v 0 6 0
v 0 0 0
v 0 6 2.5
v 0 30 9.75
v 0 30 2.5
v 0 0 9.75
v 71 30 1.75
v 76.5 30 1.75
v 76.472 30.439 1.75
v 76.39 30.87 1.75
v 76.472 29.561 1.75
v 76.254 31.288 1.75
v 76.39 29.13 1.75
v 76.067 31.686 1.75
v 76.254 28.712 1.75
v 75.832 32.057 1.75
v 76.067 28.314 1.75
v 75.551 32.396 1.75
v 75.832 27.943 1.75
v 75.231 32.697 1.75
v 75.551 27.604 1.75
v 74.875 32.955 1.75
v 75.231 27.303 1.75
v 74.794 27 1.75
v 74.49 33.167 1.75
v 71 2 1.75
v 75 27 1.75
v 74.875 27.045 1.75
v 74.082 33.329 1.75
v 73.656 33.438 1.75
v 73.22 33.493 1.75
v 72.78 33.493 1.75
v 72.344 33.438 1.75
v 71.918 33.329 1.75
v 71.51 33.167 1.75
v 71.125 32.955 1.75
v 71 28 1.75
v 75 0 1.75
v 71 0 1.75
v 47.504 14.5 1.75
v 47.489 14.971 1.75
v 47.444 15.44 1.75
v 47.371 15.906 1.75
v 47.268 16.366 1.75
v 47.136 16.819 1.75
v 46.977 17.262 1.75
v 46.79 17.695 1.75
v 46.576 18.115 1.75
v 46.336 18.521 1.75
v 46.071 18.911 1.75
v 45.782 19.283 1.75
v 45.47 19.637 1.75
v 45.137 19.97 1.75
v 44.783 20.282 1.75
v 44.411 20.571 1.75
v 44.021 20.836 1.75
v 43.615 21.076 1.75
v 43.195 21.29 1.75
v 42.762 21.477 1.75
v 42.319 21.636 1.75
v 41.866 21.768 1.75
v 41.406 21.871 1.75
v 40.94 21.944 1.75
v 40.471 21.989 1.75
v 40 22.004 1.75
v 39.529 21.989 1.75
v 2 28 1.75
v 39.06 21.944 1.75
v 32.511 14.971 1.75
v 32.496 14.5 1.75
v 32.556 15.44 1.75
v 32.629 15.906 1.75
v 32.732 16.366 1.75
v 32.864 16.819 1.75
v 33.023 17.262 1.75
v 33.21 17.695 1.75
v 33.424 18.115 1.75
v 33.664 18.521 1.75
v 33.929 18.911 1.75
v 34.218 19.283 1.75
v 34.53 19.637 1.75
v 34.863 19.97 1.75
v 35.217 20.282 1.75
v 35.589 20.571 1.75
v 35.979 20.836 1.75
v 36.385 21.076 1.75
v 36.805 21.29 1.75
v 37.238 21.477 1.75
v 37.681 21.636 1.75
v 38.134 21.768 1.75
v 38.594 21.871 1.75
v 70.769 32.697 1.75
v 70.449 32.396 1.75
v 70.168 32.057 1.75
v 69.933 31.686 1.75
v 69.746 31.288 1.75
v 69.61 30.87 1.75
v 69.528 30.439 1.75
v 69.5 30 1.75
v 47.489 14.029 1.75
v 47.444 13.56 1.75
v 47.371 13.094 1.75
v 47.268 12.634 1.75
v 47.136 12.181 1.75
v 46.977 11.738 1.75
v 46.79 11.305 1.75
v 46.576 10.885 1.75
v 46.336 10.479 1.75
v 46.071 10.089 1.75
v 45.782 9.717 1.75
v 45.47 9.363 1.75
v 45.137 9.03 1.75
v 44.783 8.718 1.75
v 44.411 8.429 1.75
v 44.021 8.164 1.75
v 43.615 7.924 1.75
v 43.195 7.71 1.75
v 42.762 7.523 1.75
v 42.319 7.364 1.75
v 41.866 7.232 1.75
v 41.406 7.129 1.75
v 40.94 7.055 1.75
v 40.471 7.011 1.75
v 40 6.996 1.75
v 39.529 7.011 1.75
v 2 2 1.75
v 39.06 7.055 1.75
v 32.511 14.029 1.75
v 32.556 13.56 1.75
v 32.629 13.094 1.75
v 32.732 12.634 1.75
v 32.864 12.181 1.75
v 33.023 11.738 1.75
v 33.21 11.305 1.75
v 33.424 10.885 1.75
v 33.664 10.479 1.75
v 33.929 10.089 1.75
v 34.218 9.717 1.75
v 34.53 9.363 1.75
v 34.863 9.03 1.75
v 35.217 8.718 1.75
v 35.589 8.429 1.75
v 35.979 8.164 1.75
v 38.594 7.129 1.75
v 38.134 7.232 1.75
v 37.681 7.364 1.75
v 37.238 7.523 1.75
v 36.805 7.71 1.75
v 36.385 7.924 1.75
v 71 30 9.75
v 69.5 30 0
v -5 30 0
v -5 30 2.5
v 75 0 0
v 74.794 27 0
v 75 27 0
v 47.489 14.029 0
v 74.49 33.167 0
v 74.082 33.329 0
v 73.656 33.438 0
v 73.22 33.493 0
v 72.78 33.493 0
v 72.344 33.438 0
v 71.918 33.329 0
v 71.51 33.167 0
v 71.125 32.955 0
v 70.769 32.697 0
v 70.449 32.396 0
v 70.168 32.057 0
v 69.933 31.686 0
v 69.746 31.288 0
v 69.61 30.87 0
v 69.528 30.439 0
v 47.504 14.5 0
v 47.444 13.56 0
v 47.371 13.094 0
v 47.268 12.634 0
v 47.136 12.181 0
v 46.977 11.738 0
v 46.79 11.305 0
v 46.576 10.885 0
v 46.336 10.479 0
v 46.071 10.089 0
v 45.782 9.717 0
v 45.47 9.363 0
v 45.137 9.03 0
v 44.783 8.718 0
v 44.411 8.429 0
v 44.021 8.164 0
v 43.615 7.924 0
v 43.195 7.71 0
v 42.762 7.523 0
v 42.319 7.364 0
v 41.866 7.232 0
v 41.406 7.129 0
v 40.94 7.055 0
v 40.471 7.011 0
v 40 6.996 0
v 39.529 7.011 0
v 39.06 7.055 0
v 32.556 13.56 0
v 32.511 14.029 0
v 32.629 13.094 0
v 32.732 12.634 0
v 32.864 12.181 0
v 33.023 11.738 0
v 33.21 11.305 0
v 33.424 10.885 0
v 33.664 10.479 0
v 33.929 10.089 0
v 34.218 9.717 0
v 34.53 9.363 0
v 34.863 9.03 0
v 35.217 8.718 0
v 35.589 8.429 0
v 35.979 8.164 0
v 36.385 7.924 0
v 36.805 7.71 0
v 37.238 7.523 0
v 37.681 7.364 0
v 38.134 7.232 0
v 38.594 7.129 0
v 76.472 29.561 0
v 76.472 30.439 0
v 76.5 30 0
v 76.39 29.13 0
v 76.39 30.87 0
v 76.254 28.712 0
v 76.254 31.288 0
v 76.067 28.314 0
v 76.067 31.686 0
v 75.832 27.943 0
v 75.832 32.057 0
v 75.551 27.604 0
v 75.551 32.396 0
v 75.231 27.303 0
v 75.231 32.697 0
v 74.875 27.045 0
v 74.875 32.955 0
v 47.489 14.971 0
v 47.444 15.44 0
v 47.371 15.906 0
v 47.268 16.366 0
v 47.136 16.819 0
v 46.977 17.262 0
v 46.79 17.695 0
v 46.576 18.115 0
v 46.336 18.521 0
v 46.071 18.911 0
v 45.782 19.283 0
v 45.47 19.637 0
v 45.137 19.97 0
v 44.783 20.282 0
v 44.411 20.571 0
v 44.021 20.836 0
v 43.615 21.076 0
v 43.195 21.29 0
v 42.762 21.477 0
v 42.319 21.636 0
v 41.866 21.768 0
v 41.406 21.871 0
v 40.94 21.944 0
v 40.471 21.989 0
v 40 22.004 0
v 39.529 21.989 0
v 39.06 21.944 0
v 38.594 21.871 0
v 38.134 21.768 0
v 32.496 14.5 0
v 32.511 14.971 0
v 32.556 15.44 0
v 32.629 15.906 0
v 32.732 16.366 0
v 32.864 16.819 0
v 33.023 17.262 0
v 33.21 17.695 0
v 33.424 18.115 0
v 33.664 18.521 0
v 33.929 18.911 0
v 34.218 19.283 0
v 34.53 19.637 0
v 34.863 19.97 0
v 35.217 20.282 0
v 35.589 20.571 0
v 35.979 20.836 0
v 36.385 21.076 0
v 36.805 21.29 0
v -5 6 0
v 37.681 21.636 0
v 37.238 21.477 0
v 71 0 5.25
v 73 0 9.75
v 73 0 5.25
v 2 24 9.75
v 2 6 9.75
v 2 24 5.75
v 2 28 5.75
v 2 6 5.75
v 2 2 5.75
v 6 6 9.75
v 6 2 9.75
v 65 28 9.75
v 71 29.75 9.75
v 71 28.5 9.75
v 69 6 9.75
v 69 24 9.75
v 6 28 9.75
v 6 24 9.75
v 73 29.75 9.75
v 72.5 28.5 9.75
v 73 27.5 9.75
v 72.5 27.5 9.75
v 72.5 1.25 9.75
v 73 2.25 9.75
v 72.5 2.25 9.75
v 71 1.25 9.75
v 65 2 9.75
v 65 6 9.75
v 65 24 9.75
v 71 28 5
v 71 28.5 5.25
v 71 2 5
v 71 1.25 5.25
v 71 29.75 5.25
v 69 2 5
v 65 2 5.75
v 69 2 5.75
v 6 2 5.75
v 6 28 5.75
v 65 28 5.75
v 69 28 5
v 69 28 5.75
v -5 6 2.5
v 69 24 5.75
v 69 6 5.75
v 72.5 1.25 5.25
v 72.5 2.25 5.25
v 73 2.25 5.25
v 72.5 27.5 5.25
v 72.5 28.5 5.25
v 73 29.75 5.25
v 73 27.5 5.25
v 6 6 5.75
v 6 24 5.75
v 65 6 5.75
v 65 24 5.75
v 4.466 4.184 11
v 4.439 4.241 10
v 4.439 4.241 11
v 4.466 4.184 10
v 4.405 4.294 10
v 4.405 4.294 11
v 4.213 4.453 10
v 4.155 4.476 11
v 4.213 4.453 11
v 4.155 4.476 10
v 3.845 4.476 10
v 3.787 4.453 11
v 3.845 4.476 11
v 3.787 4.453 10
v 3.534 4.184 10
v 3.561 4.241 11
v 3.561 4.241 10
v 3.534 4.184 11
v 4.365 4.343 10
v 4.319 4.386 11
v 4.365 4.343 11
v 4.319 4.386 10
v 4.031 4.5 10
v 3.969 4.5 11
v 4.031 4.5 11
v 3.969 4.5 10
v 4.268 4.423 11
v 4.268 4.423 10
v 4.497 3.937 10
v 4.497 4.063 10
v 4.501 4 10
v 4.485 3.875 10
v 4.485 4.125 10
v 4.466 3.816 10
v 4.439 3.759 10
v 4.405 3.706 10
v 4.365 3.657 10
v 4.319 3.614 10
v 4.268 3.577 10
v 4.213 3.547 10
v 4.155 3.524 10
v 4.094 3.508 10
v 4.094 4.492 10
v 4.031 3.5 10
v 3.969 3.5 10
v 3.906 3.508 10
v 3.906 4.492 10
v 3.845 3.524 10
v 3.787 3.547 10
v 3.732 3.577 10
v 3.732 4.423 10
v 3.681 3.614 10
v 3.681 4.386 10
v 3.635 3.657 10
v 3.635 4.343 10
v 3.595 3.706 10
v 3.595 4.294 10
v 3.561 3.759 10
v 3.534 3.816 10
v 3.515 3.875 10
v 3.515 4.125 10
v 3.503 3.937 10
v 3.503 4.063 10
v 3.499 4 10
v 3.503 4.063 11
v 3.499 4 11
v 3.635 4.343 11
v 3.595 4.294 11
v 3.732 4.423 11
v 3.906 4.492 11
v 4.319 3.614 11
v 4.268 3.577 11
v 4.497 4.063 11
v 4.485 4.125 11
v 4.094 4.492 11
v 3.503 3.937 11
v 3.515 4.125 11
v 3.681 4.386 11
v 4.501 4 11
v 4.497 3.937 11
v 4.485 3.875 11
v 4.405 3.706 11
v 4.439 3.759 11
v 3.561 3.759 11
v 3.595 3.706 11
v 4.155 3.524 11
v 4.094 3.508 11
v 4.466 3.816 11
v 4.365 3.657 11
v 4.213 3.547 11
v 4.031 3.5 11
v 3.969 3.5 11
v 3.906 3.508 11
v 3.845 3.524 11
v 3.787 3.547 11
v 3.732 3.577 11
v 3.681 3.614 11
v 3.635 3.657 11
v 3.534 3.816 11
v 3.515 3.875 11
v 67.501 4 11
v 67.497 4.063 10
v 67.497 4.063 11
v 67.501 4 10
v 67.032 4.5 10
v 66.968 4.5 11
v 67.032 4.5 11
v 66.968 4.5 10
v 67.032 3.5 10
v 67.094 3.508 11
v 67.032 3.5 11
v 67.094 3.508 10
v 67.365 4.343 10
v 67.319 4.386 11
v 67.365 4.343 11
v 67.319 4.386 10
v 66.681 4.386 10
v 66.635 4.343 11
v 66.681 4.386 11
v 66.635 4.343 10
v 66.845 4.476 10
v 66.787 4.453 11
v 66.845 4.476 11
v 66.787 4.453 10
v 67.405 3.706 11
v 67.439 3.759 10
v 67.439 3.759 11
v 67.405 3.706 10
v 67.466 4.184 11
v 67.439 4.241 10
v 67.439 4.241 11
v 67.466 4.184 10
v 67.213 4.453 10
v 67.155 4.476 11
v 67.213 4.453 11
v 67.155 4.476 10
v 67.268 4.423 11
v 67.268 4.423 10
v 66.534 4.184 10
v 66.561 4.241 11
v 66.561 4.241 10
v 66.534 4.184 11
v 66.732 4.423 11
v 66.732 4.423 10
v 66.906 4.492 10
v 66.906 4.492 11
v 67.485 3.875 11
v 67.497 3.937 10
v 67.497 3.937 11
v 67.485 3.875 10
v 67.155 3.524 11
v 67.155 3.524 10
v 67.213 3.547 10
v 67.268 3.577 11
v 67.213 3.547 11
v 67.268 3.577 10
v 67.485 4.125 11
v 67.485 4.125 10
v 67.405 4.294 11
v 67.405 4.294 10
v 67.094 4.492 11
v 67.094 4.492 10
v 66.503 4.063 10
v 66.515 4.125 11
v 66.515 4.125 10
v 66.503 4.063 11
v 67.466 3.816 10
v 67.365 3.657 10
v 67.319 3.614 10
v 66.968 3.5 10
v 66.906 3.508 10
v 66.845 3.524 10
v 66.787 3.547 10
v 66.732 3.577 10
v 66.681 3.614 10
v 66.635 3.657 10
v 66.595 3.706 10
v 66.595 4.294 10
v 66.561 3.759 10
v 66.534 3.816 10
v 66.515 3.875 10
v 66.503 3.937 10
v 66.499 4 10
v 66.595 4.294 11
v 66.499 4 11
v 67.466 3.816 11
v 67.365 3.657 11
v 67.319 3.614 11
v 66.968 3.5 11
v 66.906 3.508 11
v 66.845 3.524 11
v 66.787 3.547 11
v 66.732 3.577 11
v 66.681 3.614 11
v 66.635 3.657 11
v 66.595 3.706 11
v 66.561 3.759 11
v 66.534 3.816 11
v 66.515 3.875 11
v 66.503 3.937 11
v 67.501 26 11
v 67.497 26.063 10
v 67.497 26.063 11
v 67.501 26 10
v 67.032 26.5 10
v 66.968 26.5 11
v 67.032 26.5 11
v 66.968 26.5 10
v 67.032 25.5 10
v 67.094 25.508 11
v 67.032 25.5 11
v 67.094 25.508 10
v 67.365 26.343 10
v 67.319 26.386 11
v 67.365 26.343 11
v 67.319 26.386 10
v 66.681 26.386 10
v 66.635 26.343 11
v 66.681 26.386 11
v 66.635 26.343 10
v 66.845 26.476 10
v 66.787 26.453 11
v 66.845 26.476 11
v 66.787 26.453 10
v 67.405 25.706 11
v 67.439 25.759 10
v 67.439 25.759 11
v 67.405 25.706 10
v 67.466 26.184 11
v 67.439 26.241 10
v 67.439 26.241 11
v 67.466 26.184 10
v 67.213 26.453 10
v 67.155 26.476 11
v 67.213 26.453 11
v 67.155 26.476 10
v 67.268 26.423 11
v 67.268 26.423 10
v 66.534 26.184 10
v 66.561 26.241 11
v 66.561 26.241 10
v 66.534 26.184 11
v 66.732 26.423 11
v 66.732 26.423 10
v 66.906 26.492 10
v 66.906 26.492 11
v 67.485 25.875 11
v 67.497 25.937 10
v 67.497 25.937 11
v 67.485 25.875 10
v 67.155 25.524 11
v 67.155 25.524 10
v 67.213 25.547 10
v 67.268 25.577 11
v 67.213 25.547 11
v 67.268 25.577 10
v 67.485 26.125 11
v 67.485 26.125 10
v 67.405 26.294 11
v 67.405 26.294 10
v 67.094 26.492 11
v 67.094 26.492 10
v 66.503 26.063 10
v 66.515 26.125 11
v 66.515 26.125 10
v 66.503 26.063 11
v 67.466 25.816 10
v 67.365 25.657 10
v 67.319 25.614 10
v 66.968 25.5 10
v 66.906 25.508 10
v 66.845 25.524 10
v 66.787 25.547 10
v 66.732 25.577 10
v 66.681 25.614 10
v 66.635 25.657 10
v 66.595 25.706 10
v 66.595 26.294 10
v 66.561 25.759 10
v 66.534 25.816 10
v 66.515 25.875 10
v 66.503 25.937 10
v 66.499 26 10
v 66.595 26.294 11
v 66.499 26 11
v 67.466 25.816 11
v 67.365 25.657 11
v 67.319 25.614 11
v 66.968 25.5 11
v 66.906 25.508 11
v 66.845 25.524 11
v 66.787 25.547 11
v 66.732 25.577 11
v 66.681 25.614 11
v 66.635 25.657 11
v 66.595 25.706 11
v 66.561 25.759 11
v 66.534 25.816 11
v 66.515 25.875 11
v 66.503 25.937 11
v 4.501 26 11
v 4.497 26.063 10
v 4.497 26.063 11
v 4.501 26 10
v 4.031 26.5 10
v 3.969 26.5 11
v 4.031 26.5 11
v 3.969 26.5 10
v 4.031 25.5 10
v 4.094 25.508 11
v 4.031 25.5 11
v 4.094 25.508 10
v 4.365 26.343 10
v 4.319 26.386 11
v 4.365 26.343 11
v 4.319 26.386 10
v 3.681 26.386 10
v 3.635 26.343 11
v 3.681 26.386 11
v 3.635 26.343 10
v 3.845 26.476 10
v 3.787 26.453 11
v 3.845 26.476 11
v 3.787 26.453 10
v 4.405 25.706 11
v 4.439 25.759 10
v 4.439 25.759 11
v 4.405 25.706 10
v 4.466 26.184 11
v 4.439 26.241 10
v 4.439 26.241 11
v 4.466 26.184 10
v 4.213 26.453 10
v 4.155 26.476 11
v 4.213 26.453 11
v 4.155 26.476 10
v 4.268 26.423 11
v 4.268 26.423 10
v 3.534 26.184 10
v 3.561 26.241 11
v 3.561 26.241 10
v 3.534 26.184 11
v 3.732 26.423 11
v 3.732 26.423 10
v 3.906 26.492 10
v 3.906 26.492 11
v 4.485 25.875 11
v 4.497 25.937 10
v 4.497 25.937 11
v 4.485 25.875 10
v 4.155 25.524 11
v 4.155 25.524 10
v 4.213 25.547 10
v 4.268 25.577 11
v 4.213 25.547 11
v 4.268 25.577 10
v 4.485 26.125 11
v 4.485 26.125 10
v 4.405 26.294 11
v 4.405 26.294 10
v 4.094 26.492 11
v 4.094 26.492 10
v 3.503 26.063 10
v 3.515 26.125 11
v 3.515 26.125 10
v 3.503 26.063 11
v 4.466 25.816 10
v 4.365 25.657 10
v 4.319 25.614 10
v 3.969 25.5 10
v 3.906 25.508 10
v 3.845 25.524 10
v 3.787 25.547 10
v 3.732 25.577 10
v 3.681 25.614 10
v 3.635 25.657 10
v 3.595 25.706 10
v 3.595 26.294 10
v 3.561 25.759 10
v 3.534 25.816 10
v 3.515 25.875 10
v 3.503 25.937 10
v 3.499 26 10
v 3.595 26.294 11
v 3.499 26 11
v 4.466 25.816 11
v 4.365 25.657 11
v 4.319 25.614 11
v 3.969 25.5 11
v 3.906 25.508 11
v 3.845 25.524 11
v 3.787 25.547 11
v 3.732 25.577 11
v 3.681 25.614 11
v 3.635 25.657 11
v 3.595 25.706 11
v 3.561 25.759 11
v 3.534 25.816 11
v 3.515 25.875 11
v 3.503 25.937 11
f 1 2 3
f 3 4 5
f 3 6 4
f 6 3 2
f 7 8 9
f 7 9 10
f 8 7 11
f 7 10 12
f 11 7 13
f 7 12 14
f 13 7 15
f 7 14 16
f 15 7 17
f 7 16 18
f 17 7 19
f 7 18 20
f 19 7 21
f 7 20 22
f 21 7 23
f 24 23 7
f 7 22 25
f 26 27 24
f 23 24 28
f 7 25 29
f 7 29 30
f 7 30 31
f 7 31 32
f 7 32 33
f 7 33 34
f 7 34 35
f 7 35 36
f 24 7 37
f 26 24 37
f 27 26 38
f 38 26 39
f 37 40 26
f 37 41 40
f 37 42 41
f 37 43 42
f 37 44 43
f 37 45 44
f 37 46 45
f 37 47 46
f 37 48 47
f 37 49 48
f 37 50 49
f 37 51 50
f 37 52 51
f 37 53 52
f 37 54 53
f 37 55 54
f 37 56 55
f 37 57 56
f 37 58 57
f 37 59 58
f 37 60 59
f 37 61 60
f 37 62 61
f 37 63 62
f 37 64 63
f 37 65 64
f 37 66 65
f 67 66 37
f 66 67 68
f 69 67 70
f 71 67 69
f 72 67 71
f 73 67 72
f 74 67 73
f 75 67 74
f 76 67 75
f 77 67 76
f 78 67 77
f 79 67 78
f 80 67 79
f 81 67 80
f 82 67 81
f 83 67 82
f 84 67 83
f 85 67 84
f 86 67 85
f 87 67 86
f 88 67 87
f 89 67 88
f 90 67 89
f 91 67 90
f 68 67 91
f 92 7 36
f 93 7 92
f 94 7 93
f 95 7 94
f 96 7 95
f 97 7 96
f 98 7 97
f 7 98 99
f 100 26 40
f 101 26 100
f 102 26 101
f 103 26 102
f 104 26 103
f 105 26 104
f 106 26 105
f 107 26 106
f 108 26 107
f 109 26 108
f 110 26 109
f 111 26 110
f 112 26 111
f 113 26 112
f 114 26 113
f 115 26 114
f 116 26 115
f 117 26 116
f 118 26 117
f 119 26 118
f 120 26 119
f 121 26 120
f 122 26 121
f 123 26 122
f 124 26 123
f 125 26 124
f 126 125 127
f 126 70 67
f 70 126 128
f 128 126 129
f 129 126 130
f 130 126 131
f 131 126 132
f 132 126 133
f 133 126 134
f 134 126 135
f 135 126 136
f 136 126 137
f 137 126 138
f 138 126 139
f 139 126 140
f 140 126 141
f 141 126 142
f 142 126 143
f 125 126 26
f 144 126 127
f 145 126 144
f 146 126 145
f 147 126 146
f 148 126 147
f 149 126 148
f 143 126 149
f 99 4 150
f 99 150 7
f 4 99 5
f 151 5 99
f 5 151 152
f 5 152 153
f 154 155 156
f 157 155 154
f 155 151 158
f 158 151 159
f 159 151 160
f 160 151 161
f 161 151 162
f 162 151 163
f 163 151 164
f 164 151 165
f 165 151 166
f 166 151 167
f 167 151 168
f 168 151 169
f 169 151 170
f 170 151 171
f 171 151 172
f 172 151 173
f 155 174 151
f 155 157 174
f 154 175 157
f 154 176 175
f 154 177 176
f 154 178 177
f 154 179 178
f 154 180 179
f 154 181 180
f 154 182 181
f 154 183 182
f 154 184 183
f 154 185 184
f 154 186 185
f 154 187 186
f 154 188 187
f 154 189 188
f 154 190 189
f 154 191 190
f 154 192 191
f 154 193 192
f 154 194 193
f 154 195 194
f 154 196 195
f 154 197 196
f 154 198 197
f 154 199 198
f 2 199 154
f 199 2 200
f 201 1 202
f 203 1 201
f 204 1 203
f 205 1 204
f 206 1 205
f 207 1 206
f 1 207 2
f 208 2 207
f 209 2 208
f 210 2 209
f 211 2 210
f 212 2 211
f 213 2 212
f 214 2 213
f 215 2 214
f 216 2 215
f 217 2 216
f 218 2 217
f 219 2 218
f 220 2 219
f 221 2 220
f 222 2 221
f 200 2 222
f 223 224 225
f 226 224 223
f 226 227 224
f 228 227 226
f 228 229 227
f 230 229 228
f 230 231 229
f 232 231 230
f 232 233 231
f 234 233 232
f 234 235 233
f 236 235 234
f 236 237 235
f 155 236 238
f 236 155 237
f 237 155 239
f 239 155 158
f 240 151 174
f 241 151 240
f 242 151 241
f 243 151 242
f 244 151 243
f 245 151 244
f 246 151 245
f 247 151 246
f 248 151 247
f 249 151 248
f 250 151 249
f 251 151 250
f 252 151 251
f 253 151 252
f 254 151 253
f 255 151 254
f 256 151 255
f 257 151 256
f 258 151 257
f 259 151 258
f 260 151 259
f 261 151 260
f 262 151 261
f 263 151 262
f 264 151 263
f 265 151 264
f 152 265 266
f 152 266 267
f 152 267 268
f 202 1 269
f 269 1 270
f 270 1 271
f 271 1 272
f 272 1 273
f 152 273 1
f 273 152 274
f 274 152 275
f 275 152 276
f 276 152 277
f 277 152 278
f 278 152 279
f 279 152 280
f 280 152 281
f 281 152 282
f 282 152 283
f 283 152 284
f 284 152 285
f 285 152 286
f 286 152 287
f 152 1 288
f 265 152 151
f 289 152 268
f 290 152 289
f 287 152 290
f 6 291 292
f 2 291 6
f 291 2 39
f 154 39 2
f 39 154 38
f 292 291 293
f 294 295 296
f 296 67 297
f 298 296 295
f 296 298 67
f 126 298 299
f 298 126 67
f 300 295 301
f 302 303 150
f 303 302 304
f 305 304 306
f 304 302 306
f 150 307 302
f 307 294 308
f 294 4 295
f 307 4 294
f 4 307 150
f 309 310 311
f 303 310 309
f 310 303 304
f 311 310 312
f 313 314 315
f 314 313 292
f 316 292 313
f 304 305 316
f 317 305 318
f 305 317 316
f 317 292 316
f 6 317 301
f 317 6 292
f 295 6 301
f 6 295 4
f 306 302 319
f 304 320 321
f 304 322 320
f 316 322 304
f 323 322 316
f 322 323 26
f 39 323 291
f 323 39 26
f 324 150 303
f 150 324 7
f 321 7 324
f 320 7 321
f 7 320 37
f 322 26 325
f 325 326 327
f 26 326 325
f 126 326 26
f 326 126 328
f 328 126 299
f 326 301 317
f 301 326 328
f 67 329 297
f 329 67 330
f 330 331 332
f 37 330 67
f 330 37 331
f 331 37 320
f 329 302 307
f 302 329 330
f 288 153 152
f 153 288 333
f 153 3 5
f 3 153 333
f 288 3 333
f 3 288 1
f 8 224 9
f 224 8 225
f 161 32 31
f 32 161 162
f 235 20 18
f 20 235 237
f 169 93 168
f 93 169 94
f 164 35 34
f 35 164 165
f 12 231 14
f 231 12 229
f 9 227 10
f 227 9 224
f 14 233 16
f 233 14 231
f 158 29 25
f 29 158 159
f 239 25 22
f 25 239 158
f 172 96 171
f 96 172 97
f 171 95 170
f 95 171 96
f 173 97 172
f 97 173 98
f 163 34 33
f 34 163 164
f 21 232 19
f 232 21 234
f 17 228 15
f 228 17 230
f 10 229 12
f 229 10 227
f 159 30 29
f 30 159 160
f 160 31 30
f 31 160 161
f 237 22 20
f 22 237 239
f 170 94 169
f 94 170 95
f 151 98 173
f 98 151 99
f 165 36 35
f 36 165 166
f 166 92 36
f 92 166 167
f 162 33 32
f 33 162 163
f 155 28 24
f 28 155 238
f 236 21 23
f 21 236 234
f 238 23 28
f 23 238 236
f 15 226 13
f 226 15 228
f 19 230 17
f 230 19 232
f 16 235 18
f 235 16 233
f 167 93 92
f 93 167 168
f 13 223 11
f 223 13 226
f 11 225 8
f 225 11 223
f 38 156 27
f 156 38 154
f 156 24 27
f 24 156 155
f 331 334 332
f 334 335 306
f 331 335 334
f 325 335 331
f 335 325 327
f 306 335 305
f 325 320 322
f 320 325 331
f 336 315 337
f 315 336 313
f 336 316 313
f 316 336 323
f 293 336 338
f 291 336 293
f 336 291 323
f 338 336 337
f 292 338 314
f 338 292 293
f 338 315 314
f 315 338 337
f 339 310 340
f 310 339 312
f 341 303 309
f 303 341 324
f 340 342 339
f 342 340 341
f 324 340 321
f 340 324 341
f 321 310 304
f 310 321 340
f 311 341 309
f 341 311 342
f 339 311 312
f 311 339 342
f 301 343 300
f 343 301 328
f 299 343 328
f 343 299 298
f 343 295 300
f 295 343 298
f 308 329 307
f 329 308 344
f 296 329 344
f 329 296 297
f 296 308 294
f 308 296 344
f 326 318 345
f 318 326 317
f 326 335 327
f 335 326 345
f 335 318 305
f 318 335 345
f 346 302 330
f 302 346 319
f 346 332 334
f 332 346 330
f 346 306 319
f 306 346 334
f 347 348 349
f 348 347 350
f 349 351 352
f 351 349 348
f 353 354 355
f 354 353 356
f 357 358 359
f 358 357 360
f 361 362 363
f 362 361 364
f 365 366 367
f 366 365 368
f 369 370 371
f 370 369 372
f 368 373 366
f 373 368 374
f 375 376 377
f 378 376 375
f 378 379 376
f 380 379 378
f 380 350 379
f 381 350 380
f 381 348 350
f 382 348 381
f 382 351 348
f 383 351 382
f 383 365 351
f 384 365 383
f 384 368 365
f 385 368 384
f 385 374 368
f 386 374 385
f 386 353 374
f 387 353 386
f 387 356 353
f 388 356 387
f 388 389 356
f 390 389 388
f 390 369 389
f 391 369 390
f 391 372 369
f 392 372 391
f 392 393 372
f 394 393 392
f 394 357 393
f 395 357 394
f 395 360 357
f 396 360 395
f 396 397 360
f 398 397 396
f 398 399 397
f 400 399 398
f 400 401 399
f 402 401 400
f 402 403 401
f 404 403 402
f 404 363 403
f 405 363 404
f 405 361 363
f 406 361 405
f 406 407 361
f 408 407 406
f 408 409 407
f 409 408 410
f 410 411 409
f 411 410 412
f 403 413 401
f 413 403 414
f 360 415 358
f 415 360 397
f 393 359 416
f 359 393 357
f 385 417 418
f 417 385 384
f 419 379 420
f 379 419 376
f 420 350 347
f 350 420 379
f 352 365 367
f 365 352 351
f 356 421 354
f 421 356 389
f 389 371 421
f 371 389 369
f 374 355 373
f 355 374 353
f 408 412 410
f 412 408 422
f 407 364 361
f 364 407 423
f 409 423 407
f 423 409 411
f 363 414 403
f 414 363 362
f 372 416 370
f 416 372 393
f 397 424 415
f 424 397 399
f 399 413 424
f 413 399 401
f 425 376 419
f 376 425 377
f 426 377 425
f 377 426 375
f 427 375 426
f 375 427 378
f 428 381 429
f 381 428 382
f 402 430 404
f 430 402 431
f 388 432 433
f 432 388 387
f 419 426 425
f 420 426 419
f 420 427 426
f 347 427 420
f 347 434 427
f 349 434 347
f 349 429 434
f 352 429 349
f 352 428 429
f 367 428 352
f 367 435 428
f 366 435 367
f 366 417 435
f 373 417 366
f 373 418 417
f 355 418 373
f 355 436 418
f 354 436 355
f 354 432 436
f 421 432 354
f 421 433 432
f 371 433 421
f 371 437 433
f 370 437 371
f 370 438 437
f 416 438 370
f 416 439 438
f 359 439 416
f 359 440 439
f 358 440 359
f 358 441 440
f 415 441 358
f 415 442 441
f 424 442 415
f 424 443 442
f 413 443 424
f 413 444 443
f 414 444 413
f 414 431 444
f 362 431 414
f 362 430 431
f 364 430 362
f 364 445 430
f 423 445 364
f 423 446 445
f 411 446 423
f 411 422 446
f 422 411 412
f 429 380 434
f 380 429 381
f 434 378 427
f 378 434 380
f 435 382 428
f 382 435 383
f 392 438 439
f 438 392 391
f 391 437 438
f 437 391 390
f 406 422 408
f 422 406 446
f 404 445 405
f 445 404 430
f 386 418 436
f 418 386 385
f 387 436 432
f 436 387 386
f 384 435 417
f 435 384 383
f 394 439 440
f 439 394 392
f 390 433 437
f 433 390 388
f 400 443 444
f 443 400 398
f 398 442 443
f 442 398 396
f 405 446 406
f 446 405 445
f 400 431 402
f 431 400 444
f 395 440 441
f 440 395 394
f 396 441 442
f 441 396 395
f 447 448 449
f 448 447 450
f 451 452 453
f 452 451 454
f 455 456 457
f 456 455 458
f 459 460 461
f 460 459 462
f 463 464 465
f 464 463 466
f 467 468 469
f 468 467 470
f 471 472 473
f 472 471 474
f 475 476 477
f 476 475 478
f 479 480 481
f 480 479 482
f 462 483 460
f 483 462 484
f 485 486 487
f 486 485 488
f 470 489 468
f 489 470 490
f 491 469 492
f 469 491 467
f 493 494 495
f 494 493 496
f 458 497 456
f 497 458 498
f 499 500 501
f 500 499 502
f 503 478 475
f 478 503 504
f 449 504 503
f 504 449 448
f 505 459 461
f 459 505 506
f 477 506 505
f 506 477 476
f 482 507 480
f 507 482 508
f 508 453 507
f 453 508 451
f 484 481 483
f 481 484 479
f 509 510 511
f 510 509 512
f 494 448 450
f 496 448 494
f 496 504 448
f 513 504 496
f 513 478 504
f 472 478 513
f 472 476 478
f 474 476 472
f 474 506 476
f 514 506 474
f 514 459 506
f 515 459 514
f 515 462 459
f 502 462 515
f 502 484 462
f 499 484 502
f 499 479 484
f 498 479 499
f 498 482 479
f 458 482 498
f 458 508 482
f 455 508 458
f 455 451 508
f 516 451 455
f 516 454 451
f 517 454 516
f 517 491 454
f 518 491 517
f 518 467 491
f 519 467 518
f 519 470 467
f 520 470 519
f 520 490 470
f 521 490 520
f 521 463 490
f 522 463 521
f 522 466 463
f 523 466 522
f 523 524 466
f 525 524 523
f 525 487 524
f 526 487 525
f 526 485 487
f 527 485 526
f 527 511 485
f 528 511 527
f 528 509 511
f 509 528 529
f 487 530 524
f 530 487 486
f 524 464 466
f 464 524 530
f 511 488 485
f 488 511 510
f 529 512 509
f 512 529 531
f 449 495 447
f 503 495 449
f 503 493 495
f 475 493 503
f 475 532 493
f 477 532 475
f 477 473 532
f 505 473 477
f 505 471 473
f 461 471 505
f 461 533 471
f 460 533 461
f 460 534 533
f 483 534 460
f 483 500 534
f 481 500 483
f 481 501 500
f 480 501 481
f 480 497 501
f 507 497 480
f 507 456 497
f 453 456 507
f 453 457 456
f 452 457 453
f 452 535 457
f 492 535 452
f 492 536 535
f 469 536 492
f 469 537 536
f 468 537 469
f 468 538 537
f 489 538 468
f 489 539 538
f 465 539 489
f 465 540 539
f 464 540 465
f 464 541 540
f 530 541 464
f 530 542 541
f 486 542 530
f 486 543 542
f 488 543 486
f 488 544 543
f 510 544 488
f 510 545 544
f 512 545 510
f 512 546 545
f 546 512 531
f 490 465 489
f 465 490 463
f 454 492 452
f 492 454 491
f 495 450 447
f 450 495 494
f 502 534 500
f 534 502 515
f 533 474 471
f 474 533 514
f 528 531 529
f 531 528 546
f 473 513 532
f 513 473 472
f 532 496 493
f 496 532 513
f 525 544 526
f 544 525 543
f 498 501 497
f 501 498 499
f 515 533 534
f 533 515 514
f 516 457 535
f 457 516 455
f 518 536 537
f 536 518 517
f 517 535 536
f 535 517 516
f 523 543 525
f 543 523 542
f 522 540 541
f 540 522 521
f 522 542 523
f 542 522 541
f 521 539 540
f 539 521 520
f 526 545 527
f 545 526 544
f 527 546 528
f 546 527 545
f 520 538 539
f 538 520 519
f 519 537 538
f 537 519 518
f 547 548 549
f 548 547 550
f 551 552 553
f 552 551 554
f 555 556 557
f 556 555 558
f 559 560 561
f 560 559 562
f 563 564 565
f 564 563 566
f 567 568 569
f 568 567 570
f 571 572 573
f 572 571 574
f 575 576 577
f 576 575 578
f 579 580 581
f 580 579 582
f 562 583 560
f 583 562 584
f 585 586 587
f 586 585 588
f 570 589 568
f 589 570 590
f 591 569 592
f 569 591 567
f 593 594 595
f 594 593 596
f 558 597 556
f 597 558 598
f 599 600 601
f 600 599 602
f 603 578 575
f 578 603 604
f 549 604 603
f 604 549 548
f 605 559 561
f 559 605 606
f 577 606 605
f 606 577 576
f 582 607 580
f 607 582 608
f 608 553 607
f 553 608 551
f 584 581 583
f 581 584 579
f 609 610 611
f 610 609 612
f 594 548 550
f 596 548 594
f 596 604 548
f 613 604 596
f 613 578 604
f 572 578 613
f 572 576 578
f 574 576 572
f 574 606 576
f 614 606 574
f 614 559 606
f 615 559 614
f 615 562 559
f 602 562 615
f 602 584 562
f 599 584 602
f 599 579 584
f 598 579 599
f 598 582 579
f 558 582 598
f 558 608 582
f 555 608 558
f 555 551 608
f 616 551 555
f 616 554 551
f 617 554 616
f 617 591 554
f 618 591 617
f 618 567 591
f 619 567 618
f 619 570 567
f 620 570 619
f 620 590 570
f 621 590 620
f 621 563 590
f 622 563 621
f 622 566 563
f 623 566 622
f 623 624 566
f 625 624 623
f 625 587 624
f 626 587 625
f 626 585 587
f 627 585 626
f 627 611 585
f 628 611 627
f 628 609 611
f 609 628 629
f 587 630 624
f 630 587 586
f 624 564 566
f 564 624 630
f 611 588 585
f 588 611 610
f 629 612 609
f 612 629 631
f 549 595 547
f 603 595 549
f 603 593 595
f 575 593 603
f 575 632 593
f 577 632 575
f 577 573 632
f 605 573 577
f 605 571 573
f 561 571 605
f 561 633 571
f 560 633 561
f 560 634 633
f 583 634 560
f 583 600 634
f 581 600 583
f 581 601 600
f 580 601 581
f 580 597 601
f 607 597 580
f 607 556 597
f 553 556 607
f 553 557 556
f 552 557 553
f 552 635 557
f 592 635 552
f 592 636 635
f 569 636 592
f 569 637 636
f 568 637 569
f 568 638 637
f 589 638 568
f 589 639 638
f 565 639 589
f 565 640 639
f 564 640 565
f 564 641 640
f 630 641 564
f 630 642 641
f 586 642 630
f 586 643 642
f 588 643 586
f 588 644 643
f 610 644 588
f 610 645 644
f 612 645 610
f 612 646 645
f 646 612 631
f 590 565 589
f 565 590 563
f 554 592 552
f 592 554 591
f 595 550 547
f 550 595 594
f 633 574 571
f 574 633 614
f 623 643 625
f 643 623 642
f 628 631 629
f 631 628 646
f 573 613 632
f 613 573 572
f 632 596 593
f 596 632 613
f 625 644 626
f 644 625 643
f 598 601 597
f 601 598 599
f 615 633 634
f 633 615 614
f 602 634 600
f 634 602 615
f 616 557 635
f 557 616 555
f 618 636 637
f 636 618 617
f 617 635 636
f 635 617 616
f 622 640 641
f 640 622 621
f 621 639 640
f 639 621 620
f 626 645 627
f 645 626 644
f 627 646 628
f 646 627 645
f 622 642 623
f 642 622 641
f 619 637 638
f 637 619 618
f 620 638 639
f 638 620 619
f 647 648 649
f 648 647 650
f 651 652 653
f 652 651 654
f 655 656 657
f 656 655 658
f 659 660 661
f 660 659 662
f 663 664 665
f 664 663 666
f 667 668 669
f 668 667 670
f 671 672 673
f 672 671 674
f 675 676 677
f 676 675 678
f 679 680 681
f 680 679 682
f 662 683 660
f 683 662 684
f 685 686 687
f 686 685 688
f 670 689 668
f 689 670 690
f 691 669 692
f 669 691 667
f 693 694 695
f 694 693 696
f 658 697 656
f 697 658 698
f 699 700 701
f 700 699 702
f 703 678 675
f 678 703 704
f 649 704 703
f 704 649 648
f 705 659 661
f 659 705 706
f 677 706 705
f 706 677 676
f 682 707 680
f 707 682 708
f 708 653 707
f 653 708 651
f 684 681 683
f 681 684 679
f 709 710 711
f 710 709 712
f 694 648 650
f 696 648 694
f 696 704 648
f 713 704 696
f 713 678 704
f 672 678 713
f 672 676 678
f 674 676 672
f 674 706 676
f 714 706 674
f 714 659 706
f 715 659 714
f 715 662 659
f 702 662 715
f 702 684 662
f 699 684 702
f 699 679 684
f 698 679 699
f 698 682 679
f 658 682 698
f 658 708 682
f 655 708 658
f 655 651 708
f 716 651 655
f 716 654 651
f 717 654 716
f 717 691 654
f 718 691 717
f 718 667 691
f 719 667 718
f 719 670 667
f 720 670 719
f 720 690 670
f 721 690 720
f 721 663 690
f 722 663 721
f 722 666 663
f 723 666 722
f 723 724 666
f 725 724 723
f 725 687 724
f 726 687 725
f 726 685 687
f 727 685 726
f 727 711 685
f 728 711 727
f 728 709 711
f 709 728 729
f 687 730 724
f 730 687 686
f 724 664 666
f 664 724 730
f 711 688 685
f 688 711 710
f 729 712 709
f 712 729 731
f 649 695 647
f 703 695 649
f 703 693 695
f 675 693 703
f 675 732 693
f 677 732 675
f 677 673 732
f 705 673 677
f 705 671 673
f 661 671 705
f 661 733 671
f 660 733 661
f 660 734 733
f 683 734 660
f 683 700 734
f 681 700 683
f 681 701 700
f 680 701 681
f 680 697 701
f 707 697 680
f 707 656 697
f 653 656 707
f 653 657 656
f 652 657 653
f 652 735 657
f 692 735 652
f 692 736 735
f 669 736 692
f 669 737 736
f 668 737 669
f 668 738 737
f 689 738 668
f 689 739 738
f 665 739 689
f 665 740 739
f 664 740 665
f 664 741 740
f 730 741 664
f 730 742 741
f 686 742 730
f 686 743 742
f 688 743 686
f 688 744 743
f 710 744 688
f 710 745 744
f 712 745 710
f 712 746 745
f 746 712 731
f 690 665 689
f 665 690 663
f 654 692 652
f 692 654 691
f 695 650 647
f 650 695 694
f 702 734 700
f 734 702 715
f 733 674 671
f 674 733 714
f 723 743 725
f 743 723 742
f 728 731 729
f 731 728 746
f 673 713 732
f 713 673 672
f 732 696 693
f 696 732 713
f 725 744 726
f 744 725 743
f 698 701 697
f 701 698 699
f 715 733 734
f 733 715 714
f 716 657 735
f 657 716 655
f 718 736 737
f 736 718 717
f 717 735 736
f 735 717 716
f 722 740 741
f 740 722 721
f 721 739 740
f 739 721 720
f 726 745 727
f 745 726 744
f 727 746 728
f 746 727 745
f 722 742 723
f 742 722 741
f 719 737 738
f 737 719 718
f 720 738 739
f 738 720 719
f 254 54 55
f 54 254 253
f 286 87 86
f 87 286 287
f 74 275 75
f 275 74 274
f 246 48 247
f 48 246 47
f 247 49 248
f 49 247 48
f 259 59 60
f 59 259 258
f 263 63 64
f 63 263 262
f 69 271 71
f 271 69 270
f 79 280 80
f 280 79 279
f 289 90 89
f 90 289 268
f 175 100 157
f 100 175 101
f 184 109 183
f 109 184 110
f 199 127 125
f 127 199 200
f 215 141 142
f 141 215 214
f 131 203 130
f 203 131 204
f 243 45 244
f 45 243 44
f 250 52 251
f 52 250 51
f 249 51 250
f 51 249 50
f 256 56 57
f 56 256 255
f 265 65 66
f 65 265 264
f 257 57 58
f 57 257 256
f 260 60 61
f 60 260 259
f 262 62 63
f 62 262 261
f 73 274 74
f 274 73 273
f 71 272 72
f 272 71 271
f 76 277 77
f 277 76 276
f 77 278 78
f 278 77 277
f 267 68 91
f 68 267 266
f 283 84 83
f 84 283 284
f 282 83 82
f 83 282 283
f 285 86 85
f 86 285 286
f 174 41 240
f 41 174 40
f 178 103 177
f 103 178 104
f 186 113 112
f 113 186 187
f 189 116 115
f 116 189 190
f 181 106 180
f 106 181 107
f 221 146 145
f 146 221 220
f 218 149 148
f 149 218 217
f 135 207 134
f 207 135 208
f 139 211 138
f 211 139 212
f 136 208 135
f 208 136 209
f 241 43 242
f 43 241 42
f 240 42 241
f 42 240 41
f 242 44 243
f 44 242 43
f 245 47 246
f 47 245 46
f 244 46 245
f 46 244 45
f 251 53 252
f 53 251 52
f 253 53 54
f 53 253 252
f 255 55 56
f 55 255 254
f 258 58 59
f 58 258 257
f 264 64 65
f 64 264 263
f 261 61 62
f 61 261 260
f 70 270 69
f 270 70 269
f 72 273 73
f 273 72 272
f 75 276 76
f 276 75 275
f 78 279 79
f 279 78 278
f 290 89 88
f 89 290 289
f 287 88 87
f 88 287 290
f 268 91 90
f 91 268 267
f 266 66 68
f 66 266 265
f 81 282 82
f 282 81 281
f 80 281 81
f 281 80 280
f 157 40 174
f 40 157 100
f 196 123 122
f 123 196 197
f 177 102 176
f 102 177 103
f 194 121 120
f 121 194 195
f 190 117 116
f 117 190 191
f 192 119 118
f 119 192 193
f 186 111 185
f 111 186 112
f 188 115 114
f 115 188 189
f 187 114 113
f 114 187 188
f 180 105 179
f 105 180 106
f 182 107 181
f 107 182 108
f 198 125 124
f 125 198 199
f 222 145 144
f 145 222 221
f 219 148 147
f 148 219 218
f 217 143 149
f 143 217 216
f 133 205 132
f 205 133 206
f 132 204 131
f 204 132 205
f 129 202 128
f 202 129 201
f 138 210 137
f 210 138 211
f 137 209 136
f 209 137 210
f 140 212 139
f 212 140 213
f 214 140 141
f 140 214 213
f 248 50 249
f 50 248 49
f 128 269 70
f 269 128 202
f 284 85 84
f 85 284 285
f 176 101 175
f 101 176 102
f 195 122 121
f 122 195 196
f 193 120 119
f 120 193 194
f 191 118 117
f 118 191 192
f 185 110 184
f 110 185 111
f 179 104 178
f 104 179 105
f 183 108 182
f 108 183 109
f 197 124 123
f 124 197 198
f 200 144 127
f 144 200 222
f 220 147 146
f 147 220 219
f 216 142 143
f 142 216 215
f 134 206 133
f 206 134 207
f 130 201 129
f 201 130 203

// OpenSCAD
// WMD -- Wind Mitigation Device
difference() {
    union() {
        // GSB Base
        cube([73,30,1.75]);
        
        // GSB Sides
        translate([2, 0, 1.75]) {
            color([1,0,0])
            cube([69,2,8]);
        }
        translate([2, 28, 1.75]) {
            color([0,0,1])
            cube([69,2,8]);
        }
       // GSB Rear
       translate([0, 0, 1.75]) {
             color([0,1,0])
             cube([2,30,8]);
       }
      
       
       // Left caliper hard point
       translate([-5,6,0]) {
           color([1,0,1])
           cube([5,24,2.5]);
       }
       
       // Right caliper hard point circle
       translate([73,30,0]) {
           color([0,1,1])
           cylinder(h=1.75, d=7, $fn=50);
       }
       
       // Right caliper hard point rectangle
       translate([73,0,0]) {
           color([1,1,0])
           cube([2,27,1.75]);
       }
       
         // GSB Front
       translate([69, 2, 5]) {
             color([1,1,1])
             cube([2,26,4.75]);
       }
       
       // Door Slide Left
         translate([71, 0, 5.25]) {
             color([0,.75,.5])
             cube([1.5,1.25,4.5]);
       }
        translate([72.5, 0, 5.25]) {
             color([.6,.75,.5])
             cube([.5,2.25,4.5]);
       }
       
        // Door Slide Right
         translate([71, 28.5, 5.25]) {
             color([0,.75,.5])
             cube([1.5,1.25,4.5]);
       }
        translate([72.5, 27.5, 5.25]) {
             color([.6,.75,.5])
             cube([.5,2.25,4.5]);
       }
       
       // Peg Gussets
       translate([2,2,5.75]) {
           color([0,1,1])
           cube([4,4,4]);
       }
       translate([2,24,5.75]) {
           color([0,1,1])
           cube([4,4,4]);
       }
        translate([65,2,5.75]) {
           color([0,1,1])
           cube([4,4,4]);
       }
        translate([65,24,5.75]) {
           color([0,1,1])
           cube([4,4,4]);
       }
       // Top Peg nipples
       translate([4,4,10]) {
           color([0,0,0])
           cylinder_outer(1, .5, 50);
       }
        
       translate([67,4,10]) {
         color([0,0,0])
         cylinder_outer(1, .5, 50);
       }
        translate([67,26,10]) {
         color([0,0,0])
         cylinder_outer(1, .5, 50);
       }
        translate([4,26,10]) {
         color([0,0,0])
         cylinder_outer(1, .5, 50);
       }  
   }
      
    // Slide Well
    translate([40,14.5,-1]) cylinder_outer(8,7.5,100);
    // Objective Hole
    translate([40,14.5,24]) cylinder_outer(5,9,100);
}

module cylinder_outer(height,radius,fn){
   fudge = 1/cos(180/fn);
   cylinder(h=height,r=radius*fudge,$fn=fn);
    }
